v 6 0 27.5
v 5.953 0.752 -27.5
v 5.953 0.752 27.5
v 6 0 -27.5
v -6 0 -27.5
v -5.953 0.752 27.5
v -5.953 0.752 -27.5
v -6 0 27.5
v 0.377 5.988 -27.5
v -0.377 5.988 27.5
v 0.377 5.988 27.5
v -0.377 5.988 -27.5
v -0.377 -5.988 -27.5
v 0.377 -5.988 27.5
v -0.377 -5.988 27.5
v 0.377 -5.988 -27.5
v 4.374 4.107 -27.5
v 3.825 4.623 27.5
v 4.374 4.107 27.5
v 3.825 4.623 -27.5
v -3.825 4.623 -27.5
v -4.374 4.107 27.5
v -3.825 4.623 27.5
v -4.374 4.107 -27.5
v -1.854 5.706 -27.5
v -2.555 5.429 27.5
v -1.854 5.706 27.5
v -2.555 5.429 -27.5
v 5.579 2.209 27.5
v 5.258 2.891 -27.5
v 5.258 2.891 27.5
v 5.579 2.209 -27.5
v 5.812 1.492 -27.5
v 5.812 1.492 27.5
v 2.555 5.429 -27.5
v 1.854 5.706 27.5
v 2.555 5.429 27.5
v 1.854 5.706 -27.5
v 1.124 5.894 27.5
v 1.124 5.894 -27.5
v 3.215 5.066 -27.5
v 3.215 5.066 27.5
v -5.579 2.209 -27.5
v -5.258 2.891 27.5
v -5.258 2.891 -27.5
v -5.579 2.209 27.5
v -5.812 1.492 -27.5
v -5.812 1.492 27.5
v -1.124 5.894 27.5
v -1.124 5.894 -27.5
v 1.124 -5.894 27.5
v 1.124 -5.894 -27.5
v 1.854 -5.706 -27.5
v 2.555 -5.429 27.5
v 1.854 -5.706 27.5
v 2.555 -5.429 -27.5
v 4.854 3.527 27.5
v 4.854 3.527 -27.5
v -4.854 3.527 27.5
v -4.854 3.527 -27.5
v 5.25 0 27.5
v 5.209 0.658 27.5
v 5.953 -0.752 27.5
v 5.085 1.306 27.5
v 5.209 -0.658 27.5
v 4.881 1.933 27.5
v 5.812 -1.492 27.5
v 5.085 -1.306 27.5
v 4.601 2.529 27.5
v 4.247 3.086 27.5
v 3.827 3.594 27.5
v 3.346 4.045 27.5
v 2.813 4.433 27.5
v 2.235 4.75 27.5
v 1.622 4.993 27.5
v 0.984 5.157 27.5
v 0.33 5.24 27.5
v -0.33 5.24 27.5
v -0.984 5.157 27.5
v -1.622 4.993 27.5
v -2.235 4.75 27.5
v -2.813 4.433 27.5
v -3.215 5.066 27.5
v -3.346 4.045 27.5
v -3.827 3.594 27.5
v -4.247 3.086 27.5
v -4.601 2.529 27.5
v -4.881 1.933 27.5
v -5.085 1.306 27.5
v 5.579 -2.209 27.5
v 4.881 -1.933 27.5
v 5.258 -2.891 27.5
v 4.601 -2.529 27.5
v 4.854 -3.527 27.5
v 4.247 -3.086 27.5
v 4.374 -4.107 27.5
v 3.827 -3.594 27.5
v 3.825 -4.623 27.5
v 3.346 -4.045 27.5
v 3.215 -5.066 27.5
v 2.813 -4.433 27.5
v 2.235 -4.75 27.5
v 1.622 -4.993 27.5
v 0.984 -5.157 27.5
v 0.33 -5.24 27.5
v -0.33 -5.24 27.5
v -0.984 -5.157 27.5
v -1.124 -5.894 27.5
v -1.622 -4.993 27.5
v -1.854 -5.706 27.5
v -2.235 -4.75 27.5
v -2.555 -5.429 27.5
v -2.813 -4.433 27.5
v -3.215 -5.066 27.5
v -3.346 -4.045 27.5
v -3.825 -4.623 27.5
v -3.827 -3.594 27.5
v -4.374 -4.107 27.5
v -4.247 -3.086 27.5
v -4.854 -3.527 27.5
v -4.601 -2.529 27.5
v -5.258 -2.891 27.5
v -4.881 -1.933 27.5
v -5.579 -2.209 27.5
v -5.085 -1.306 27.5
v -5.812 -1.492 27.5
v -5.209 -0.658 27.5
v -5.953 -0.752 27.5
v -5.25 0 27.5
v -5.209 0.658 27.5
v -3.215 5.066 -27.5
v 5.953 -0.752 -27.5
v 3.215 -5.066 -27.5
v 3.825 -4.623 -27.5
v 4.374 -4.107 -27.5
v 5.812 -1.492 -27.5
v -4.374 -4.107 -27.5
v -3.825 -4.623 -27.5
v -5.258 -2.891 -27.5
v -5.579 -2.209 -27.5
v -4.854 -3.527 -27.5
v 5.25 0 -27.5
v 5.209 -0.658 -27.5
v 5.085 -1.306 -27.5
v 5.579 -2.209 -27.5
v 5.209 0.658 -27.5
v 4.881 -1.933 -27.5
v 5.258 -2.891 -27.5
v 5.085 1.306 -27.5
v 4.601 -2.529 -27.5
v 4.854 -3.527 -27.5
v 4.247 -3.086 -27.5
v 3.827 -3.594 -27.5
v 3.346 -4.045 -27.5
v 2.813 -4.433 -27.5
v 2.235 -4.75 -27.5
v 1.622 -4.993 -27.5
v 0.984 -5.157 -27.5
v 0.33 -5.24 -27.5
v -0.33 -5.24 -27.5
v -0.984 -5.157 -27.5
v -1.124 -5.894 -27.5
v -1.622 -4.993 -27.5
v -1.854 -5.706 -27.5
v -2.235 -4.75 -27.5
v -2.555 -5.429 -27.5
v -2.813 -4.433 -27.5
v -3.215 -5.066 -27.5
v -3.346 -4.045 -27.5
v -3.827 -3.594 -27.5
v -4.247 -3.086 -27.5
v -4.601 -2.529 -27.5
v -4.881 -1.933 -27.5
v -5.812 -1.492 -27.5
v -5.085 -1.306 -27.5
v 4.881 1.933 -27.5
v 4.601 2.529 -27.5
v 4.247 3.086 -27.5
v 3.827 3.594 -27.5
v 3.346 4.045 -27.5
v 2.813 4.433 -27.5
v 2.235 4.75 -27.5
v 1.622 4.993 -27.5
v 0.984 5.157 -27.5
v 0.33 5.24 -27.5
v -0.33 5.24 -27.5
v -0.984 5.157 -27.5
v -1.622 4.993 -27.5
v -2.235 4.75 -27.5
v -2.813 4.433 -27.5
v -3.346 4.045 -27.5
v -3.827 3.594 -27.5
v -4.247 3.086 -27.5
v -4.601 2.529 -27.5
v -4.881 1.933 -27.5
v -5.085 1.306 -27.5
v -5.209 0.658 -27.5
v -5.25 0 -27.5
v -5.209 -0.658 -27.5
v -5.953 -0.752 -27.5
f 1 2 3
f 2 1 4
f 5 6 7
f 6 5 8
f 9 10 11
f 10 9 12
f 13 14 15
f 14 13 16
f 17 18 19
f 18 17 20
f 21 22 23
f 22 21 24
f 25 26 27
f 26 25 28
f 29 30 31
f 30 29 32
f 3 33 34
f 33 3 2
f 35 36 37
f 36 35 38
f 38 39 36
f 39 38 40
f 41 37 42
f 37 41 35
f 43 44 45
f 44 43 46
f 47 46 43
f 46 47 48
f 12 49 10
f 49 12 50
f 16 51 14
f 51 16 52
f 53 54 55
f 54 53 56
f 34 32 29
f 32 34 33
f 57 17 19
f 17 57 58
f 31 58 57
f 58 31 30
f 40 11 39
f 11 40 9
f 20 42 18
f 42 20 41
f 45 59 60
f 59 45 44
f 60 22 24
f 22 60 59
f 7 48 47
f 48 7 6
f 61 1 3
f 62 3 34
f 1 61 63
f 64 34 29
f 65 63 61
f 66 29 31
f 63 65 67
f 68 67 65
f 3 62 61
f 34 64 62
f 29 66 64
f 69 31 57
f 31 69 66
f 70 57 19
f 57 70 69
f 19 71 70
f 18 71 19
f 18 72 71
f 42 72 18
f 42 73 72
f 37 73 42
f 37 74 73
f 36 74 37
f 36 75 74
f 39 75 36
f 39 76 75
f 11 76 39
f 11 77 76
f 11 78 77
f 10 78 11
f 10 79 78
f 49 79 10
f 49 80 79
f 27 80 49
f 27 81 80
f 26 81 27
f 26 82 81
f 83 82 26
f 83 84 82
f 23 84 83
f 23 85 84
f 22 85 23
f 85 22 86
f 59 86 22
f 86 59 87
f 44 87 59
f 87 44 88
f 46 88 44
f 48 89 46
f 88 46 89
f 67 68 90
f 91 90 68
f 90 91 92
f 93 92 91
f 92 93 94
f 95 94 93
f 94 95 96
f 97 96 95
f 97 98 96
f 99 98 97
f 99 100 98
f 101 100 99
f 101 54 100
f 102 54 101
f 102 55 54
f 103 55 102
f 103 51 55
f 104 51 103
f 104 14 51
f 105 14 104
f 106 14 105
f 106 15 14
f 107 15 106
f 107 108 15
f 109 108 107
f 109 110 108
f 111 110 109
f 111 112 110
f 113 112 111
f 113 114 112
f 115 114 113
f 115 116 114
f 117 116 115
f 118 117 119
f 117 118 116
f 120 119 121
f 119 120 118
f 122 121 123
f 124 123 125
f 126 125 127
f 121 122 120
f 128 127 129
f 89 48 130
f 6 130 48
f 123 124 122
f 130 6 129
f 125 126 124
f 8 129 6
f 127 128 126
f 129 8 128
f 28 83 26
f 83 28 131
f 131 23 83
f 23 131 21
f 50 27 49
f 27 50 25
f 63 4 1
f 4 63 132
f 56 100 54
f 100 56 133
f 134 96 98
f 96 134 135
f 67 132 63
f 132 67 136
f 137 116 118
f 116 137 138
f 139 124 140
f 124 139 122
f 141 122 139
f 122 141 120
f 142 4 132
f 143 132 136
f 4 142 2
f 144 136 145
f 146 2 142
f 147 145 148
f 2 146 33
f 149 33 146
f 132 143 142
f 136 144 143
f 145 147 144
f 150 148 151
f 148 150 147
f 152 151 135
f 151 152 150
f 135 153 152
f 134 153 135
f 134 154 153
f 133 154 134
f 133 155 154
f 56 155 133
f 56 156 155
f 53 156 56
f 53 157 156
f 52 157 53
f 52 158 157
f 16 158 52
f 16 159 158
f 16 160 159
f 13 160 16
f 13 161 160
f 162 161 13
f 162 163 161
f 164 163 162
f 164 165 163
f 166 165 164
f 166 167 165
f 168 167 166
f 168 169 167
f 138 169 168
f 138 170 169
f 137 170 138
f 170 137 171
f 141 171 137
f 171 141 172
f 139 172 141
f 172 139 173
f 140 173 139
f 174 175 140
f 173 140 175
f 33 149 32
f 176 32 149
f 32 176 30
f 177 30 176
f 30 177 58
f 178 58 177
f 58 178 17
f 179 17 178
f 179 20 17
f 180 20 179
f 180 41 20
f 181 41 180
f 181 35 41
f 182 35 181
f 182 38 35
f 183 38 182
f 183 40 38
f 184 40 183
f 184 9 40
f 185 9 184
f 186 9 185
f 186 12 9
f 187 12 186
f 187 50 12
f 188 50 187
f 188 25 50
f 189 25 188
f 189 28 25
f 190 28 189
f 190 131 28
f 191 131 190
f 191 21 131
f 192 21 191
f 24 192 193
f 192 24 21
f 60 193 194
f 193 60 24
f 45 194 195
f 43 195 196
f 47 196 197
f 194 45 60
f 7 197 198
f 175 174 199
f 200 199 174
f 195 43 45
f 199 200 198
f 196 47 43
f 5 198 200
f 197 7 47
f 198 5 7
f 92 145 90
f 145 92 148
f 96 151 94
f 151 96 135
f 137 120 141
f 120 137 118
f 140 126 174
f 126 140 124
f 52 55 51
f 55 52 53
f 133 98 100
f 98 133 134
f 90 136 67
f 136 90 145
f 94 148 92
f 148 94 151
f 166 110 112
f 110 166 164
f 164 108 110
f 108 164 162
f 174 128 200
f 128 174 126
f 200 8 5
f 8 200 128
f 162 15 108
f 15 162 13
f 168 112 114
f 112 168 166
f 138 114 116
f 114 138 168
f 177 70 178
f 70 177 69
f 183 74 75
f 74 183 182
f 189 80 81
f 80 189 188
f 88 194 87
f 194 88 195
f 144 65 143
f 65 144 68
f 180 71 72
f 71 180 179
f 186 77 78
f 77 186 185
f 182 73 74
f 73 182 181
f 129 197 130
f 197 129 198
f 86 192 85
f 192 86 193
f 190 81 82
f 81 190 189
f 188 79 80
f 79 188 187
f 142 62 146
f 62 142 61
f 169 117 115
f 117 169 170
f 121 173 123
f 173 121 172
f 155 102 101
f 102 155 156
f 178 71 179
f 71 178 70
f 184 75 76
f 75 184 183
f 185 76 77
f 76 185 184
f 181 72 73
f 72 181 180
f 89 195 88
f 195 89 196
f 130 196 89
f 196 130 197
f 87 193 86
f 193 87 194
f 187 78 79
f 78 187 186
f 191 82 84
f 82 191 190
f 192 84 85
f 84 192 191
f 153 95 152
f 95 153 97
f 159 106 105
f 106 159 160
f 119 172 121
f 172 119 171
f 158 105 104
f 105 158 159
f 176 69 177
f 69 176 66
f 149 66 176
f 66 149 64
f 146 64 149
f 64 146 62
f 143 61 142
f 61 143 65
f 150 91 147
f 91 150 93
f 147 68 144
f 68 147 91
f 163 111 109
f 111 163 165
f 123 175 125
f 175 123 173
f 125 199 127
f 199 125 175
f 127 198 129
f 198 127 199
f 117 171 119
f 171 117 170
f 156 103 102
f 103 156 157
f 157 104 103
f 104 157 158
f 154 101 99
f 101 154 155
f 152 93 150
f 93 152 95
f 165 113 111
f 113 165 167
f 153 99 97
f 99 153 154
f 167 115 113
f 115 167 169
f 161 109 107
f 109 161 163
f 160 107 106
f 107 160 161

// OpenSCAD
$fn = 50;


difference() {
	union() {
		translate(v = [0, 0, -27.5000000000]) {
			cylinder(h = 55, r = 6.0000000000);
		}
	}
	union() {
		translate(v = [0, 0, -100.0000000000]) {
			cylinder(h = 200, r = 5.2500000000);
		}
	}
}
